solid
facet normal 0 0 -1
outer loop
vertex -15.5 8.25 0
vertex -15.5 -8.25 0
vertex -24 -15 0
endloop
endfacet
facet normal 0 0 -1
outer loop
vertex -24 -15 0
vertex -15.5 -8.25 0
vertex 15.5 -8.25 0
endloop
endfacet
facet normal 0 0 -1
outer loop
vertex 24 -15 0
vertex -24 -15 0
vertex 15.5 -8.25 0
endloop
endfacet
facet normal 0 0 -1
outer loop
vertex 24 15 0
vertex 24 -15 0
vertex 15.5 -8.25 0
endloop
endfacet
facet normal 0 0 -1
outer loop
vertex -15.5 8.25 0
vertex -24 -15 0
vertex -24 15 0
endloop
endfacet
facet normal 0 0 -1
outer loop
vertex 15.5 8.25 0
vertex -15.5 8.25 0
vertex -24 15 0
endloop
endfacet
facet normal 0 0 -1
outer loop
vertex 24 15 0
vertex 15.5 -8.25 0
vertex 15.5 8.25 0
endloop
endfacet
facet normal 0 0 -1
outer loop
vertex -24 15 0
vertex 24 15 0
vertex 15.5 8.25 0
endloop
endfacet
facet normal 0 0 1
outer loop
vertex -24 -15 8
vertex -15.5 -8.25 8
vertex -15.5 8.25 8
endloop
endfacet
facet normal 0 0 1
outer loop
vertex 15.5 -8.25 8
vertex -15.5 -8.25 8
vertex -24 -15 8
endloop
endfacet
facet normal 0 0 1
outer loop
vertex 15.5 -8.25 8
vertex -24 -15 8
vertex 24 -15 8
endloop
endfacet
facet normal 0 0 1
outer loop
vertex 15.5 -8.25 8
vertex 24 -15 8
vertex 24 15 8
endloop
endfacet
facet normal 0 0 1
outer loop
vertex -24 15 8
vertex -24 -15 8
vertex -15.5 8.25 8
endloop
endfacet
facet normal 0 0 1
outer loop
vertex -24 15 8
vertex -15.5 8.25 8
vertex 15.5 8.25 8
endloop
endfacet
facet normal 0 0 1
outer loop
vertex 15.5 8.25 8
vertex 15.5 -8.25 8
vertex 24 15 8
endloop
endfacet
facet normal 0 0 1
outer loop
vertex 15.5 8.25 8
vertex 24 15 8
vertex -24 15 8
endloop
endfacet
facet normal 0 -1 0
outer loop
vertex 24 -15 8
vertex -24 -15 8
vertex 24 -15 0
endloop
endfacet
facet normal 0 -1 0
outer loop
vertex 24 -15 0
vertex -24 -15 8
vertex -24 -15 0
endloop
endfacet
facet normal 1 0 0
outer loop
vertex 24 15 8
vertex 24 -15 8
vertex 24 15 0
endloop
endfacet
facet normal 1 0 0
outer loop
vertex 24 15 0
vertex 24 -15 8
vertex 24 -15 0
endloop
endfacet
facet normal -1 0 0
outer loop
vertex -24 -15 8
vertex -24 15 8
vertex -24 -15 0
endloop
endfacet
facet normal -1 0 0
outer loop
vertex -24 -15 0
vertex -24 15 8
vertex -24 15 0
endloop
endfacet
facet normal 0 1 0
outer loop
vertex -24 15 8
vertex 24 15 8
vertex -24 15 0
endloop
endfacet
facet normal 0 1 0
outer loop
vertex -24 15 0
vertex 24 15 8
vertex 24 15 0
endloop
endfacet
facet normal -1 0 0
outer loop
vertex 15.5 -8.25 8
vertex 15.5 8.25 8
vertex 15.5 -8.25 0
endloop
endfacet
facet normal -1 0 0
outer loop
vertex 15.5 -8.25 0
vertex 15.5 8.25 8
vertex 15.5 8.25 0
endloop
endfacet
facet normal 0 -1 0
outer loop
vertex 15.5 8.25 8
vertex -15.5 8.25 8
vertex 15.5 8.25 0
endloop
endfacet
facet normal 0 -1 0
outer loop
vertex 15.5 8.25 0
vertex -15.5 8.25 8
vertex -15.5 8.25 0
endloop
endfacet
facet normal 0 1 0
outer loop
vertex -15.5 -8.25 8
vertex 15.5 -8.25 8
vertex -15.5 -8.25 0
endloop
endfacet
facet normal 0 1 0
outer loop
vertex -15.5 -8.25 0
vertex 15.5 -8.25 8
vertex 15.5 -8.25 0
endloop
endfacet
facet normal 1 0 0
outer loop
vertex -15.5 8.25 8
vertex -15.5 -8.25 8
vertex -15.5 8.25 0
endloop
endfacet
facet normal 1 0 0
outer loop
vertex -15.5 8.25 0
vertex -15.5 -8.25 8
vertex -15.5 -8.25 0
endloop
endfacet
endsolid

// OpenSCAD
polyhedron(points=[[-24.0, -15.0, 0.0], [24.0, -15.0, 0.0], [24.0, 15.0, 0.0], [-24.0, 15.0, 0.0], [15.5, -8.25, 0.0], [15.5, 8.25, 0.0], [-15.5, 8.25, 0.0], [-15.5, -8.25, 0.0], [-24.0, -15.0, 8.0], [24.0, -15.0, 8.0], [24.0, 15.0, 8.0], [-24.0, 15.0, 8.0], [15.5, -8.25, 8.0], [15.5, 8.25, 8.0], [-15.5, 8.25, 8.0], [-15.5, -8.25, 8.0]], faces=[[6, 7, 0], [0, 7, 4], [1, 0, 4], [2, 1, 4], [6, 0, 3], [5, 6, 3], [2, 4, 5], [3, 2, 5], [8, 15, 14], [12, 15, 8], [12, 8, 9], [12, 9, 10], [11, 8, 14], [11, 14, 13], [13, 12, 10], [13, 10, 11], [9, 8, 1], [1, 8, 0], [10, 9, 2], [2, 9, 1], [8, 11, 0], [0, 11, 3], [11, 10, 3], [3, 10, 2], [12, 13, 4], [4, 13, 5], [13, 14, 5], [5, 14, 6], [15, 12, 7], [7, 12, 4], [14, 15, 6], [6, 15, 7]], convexity=30);
